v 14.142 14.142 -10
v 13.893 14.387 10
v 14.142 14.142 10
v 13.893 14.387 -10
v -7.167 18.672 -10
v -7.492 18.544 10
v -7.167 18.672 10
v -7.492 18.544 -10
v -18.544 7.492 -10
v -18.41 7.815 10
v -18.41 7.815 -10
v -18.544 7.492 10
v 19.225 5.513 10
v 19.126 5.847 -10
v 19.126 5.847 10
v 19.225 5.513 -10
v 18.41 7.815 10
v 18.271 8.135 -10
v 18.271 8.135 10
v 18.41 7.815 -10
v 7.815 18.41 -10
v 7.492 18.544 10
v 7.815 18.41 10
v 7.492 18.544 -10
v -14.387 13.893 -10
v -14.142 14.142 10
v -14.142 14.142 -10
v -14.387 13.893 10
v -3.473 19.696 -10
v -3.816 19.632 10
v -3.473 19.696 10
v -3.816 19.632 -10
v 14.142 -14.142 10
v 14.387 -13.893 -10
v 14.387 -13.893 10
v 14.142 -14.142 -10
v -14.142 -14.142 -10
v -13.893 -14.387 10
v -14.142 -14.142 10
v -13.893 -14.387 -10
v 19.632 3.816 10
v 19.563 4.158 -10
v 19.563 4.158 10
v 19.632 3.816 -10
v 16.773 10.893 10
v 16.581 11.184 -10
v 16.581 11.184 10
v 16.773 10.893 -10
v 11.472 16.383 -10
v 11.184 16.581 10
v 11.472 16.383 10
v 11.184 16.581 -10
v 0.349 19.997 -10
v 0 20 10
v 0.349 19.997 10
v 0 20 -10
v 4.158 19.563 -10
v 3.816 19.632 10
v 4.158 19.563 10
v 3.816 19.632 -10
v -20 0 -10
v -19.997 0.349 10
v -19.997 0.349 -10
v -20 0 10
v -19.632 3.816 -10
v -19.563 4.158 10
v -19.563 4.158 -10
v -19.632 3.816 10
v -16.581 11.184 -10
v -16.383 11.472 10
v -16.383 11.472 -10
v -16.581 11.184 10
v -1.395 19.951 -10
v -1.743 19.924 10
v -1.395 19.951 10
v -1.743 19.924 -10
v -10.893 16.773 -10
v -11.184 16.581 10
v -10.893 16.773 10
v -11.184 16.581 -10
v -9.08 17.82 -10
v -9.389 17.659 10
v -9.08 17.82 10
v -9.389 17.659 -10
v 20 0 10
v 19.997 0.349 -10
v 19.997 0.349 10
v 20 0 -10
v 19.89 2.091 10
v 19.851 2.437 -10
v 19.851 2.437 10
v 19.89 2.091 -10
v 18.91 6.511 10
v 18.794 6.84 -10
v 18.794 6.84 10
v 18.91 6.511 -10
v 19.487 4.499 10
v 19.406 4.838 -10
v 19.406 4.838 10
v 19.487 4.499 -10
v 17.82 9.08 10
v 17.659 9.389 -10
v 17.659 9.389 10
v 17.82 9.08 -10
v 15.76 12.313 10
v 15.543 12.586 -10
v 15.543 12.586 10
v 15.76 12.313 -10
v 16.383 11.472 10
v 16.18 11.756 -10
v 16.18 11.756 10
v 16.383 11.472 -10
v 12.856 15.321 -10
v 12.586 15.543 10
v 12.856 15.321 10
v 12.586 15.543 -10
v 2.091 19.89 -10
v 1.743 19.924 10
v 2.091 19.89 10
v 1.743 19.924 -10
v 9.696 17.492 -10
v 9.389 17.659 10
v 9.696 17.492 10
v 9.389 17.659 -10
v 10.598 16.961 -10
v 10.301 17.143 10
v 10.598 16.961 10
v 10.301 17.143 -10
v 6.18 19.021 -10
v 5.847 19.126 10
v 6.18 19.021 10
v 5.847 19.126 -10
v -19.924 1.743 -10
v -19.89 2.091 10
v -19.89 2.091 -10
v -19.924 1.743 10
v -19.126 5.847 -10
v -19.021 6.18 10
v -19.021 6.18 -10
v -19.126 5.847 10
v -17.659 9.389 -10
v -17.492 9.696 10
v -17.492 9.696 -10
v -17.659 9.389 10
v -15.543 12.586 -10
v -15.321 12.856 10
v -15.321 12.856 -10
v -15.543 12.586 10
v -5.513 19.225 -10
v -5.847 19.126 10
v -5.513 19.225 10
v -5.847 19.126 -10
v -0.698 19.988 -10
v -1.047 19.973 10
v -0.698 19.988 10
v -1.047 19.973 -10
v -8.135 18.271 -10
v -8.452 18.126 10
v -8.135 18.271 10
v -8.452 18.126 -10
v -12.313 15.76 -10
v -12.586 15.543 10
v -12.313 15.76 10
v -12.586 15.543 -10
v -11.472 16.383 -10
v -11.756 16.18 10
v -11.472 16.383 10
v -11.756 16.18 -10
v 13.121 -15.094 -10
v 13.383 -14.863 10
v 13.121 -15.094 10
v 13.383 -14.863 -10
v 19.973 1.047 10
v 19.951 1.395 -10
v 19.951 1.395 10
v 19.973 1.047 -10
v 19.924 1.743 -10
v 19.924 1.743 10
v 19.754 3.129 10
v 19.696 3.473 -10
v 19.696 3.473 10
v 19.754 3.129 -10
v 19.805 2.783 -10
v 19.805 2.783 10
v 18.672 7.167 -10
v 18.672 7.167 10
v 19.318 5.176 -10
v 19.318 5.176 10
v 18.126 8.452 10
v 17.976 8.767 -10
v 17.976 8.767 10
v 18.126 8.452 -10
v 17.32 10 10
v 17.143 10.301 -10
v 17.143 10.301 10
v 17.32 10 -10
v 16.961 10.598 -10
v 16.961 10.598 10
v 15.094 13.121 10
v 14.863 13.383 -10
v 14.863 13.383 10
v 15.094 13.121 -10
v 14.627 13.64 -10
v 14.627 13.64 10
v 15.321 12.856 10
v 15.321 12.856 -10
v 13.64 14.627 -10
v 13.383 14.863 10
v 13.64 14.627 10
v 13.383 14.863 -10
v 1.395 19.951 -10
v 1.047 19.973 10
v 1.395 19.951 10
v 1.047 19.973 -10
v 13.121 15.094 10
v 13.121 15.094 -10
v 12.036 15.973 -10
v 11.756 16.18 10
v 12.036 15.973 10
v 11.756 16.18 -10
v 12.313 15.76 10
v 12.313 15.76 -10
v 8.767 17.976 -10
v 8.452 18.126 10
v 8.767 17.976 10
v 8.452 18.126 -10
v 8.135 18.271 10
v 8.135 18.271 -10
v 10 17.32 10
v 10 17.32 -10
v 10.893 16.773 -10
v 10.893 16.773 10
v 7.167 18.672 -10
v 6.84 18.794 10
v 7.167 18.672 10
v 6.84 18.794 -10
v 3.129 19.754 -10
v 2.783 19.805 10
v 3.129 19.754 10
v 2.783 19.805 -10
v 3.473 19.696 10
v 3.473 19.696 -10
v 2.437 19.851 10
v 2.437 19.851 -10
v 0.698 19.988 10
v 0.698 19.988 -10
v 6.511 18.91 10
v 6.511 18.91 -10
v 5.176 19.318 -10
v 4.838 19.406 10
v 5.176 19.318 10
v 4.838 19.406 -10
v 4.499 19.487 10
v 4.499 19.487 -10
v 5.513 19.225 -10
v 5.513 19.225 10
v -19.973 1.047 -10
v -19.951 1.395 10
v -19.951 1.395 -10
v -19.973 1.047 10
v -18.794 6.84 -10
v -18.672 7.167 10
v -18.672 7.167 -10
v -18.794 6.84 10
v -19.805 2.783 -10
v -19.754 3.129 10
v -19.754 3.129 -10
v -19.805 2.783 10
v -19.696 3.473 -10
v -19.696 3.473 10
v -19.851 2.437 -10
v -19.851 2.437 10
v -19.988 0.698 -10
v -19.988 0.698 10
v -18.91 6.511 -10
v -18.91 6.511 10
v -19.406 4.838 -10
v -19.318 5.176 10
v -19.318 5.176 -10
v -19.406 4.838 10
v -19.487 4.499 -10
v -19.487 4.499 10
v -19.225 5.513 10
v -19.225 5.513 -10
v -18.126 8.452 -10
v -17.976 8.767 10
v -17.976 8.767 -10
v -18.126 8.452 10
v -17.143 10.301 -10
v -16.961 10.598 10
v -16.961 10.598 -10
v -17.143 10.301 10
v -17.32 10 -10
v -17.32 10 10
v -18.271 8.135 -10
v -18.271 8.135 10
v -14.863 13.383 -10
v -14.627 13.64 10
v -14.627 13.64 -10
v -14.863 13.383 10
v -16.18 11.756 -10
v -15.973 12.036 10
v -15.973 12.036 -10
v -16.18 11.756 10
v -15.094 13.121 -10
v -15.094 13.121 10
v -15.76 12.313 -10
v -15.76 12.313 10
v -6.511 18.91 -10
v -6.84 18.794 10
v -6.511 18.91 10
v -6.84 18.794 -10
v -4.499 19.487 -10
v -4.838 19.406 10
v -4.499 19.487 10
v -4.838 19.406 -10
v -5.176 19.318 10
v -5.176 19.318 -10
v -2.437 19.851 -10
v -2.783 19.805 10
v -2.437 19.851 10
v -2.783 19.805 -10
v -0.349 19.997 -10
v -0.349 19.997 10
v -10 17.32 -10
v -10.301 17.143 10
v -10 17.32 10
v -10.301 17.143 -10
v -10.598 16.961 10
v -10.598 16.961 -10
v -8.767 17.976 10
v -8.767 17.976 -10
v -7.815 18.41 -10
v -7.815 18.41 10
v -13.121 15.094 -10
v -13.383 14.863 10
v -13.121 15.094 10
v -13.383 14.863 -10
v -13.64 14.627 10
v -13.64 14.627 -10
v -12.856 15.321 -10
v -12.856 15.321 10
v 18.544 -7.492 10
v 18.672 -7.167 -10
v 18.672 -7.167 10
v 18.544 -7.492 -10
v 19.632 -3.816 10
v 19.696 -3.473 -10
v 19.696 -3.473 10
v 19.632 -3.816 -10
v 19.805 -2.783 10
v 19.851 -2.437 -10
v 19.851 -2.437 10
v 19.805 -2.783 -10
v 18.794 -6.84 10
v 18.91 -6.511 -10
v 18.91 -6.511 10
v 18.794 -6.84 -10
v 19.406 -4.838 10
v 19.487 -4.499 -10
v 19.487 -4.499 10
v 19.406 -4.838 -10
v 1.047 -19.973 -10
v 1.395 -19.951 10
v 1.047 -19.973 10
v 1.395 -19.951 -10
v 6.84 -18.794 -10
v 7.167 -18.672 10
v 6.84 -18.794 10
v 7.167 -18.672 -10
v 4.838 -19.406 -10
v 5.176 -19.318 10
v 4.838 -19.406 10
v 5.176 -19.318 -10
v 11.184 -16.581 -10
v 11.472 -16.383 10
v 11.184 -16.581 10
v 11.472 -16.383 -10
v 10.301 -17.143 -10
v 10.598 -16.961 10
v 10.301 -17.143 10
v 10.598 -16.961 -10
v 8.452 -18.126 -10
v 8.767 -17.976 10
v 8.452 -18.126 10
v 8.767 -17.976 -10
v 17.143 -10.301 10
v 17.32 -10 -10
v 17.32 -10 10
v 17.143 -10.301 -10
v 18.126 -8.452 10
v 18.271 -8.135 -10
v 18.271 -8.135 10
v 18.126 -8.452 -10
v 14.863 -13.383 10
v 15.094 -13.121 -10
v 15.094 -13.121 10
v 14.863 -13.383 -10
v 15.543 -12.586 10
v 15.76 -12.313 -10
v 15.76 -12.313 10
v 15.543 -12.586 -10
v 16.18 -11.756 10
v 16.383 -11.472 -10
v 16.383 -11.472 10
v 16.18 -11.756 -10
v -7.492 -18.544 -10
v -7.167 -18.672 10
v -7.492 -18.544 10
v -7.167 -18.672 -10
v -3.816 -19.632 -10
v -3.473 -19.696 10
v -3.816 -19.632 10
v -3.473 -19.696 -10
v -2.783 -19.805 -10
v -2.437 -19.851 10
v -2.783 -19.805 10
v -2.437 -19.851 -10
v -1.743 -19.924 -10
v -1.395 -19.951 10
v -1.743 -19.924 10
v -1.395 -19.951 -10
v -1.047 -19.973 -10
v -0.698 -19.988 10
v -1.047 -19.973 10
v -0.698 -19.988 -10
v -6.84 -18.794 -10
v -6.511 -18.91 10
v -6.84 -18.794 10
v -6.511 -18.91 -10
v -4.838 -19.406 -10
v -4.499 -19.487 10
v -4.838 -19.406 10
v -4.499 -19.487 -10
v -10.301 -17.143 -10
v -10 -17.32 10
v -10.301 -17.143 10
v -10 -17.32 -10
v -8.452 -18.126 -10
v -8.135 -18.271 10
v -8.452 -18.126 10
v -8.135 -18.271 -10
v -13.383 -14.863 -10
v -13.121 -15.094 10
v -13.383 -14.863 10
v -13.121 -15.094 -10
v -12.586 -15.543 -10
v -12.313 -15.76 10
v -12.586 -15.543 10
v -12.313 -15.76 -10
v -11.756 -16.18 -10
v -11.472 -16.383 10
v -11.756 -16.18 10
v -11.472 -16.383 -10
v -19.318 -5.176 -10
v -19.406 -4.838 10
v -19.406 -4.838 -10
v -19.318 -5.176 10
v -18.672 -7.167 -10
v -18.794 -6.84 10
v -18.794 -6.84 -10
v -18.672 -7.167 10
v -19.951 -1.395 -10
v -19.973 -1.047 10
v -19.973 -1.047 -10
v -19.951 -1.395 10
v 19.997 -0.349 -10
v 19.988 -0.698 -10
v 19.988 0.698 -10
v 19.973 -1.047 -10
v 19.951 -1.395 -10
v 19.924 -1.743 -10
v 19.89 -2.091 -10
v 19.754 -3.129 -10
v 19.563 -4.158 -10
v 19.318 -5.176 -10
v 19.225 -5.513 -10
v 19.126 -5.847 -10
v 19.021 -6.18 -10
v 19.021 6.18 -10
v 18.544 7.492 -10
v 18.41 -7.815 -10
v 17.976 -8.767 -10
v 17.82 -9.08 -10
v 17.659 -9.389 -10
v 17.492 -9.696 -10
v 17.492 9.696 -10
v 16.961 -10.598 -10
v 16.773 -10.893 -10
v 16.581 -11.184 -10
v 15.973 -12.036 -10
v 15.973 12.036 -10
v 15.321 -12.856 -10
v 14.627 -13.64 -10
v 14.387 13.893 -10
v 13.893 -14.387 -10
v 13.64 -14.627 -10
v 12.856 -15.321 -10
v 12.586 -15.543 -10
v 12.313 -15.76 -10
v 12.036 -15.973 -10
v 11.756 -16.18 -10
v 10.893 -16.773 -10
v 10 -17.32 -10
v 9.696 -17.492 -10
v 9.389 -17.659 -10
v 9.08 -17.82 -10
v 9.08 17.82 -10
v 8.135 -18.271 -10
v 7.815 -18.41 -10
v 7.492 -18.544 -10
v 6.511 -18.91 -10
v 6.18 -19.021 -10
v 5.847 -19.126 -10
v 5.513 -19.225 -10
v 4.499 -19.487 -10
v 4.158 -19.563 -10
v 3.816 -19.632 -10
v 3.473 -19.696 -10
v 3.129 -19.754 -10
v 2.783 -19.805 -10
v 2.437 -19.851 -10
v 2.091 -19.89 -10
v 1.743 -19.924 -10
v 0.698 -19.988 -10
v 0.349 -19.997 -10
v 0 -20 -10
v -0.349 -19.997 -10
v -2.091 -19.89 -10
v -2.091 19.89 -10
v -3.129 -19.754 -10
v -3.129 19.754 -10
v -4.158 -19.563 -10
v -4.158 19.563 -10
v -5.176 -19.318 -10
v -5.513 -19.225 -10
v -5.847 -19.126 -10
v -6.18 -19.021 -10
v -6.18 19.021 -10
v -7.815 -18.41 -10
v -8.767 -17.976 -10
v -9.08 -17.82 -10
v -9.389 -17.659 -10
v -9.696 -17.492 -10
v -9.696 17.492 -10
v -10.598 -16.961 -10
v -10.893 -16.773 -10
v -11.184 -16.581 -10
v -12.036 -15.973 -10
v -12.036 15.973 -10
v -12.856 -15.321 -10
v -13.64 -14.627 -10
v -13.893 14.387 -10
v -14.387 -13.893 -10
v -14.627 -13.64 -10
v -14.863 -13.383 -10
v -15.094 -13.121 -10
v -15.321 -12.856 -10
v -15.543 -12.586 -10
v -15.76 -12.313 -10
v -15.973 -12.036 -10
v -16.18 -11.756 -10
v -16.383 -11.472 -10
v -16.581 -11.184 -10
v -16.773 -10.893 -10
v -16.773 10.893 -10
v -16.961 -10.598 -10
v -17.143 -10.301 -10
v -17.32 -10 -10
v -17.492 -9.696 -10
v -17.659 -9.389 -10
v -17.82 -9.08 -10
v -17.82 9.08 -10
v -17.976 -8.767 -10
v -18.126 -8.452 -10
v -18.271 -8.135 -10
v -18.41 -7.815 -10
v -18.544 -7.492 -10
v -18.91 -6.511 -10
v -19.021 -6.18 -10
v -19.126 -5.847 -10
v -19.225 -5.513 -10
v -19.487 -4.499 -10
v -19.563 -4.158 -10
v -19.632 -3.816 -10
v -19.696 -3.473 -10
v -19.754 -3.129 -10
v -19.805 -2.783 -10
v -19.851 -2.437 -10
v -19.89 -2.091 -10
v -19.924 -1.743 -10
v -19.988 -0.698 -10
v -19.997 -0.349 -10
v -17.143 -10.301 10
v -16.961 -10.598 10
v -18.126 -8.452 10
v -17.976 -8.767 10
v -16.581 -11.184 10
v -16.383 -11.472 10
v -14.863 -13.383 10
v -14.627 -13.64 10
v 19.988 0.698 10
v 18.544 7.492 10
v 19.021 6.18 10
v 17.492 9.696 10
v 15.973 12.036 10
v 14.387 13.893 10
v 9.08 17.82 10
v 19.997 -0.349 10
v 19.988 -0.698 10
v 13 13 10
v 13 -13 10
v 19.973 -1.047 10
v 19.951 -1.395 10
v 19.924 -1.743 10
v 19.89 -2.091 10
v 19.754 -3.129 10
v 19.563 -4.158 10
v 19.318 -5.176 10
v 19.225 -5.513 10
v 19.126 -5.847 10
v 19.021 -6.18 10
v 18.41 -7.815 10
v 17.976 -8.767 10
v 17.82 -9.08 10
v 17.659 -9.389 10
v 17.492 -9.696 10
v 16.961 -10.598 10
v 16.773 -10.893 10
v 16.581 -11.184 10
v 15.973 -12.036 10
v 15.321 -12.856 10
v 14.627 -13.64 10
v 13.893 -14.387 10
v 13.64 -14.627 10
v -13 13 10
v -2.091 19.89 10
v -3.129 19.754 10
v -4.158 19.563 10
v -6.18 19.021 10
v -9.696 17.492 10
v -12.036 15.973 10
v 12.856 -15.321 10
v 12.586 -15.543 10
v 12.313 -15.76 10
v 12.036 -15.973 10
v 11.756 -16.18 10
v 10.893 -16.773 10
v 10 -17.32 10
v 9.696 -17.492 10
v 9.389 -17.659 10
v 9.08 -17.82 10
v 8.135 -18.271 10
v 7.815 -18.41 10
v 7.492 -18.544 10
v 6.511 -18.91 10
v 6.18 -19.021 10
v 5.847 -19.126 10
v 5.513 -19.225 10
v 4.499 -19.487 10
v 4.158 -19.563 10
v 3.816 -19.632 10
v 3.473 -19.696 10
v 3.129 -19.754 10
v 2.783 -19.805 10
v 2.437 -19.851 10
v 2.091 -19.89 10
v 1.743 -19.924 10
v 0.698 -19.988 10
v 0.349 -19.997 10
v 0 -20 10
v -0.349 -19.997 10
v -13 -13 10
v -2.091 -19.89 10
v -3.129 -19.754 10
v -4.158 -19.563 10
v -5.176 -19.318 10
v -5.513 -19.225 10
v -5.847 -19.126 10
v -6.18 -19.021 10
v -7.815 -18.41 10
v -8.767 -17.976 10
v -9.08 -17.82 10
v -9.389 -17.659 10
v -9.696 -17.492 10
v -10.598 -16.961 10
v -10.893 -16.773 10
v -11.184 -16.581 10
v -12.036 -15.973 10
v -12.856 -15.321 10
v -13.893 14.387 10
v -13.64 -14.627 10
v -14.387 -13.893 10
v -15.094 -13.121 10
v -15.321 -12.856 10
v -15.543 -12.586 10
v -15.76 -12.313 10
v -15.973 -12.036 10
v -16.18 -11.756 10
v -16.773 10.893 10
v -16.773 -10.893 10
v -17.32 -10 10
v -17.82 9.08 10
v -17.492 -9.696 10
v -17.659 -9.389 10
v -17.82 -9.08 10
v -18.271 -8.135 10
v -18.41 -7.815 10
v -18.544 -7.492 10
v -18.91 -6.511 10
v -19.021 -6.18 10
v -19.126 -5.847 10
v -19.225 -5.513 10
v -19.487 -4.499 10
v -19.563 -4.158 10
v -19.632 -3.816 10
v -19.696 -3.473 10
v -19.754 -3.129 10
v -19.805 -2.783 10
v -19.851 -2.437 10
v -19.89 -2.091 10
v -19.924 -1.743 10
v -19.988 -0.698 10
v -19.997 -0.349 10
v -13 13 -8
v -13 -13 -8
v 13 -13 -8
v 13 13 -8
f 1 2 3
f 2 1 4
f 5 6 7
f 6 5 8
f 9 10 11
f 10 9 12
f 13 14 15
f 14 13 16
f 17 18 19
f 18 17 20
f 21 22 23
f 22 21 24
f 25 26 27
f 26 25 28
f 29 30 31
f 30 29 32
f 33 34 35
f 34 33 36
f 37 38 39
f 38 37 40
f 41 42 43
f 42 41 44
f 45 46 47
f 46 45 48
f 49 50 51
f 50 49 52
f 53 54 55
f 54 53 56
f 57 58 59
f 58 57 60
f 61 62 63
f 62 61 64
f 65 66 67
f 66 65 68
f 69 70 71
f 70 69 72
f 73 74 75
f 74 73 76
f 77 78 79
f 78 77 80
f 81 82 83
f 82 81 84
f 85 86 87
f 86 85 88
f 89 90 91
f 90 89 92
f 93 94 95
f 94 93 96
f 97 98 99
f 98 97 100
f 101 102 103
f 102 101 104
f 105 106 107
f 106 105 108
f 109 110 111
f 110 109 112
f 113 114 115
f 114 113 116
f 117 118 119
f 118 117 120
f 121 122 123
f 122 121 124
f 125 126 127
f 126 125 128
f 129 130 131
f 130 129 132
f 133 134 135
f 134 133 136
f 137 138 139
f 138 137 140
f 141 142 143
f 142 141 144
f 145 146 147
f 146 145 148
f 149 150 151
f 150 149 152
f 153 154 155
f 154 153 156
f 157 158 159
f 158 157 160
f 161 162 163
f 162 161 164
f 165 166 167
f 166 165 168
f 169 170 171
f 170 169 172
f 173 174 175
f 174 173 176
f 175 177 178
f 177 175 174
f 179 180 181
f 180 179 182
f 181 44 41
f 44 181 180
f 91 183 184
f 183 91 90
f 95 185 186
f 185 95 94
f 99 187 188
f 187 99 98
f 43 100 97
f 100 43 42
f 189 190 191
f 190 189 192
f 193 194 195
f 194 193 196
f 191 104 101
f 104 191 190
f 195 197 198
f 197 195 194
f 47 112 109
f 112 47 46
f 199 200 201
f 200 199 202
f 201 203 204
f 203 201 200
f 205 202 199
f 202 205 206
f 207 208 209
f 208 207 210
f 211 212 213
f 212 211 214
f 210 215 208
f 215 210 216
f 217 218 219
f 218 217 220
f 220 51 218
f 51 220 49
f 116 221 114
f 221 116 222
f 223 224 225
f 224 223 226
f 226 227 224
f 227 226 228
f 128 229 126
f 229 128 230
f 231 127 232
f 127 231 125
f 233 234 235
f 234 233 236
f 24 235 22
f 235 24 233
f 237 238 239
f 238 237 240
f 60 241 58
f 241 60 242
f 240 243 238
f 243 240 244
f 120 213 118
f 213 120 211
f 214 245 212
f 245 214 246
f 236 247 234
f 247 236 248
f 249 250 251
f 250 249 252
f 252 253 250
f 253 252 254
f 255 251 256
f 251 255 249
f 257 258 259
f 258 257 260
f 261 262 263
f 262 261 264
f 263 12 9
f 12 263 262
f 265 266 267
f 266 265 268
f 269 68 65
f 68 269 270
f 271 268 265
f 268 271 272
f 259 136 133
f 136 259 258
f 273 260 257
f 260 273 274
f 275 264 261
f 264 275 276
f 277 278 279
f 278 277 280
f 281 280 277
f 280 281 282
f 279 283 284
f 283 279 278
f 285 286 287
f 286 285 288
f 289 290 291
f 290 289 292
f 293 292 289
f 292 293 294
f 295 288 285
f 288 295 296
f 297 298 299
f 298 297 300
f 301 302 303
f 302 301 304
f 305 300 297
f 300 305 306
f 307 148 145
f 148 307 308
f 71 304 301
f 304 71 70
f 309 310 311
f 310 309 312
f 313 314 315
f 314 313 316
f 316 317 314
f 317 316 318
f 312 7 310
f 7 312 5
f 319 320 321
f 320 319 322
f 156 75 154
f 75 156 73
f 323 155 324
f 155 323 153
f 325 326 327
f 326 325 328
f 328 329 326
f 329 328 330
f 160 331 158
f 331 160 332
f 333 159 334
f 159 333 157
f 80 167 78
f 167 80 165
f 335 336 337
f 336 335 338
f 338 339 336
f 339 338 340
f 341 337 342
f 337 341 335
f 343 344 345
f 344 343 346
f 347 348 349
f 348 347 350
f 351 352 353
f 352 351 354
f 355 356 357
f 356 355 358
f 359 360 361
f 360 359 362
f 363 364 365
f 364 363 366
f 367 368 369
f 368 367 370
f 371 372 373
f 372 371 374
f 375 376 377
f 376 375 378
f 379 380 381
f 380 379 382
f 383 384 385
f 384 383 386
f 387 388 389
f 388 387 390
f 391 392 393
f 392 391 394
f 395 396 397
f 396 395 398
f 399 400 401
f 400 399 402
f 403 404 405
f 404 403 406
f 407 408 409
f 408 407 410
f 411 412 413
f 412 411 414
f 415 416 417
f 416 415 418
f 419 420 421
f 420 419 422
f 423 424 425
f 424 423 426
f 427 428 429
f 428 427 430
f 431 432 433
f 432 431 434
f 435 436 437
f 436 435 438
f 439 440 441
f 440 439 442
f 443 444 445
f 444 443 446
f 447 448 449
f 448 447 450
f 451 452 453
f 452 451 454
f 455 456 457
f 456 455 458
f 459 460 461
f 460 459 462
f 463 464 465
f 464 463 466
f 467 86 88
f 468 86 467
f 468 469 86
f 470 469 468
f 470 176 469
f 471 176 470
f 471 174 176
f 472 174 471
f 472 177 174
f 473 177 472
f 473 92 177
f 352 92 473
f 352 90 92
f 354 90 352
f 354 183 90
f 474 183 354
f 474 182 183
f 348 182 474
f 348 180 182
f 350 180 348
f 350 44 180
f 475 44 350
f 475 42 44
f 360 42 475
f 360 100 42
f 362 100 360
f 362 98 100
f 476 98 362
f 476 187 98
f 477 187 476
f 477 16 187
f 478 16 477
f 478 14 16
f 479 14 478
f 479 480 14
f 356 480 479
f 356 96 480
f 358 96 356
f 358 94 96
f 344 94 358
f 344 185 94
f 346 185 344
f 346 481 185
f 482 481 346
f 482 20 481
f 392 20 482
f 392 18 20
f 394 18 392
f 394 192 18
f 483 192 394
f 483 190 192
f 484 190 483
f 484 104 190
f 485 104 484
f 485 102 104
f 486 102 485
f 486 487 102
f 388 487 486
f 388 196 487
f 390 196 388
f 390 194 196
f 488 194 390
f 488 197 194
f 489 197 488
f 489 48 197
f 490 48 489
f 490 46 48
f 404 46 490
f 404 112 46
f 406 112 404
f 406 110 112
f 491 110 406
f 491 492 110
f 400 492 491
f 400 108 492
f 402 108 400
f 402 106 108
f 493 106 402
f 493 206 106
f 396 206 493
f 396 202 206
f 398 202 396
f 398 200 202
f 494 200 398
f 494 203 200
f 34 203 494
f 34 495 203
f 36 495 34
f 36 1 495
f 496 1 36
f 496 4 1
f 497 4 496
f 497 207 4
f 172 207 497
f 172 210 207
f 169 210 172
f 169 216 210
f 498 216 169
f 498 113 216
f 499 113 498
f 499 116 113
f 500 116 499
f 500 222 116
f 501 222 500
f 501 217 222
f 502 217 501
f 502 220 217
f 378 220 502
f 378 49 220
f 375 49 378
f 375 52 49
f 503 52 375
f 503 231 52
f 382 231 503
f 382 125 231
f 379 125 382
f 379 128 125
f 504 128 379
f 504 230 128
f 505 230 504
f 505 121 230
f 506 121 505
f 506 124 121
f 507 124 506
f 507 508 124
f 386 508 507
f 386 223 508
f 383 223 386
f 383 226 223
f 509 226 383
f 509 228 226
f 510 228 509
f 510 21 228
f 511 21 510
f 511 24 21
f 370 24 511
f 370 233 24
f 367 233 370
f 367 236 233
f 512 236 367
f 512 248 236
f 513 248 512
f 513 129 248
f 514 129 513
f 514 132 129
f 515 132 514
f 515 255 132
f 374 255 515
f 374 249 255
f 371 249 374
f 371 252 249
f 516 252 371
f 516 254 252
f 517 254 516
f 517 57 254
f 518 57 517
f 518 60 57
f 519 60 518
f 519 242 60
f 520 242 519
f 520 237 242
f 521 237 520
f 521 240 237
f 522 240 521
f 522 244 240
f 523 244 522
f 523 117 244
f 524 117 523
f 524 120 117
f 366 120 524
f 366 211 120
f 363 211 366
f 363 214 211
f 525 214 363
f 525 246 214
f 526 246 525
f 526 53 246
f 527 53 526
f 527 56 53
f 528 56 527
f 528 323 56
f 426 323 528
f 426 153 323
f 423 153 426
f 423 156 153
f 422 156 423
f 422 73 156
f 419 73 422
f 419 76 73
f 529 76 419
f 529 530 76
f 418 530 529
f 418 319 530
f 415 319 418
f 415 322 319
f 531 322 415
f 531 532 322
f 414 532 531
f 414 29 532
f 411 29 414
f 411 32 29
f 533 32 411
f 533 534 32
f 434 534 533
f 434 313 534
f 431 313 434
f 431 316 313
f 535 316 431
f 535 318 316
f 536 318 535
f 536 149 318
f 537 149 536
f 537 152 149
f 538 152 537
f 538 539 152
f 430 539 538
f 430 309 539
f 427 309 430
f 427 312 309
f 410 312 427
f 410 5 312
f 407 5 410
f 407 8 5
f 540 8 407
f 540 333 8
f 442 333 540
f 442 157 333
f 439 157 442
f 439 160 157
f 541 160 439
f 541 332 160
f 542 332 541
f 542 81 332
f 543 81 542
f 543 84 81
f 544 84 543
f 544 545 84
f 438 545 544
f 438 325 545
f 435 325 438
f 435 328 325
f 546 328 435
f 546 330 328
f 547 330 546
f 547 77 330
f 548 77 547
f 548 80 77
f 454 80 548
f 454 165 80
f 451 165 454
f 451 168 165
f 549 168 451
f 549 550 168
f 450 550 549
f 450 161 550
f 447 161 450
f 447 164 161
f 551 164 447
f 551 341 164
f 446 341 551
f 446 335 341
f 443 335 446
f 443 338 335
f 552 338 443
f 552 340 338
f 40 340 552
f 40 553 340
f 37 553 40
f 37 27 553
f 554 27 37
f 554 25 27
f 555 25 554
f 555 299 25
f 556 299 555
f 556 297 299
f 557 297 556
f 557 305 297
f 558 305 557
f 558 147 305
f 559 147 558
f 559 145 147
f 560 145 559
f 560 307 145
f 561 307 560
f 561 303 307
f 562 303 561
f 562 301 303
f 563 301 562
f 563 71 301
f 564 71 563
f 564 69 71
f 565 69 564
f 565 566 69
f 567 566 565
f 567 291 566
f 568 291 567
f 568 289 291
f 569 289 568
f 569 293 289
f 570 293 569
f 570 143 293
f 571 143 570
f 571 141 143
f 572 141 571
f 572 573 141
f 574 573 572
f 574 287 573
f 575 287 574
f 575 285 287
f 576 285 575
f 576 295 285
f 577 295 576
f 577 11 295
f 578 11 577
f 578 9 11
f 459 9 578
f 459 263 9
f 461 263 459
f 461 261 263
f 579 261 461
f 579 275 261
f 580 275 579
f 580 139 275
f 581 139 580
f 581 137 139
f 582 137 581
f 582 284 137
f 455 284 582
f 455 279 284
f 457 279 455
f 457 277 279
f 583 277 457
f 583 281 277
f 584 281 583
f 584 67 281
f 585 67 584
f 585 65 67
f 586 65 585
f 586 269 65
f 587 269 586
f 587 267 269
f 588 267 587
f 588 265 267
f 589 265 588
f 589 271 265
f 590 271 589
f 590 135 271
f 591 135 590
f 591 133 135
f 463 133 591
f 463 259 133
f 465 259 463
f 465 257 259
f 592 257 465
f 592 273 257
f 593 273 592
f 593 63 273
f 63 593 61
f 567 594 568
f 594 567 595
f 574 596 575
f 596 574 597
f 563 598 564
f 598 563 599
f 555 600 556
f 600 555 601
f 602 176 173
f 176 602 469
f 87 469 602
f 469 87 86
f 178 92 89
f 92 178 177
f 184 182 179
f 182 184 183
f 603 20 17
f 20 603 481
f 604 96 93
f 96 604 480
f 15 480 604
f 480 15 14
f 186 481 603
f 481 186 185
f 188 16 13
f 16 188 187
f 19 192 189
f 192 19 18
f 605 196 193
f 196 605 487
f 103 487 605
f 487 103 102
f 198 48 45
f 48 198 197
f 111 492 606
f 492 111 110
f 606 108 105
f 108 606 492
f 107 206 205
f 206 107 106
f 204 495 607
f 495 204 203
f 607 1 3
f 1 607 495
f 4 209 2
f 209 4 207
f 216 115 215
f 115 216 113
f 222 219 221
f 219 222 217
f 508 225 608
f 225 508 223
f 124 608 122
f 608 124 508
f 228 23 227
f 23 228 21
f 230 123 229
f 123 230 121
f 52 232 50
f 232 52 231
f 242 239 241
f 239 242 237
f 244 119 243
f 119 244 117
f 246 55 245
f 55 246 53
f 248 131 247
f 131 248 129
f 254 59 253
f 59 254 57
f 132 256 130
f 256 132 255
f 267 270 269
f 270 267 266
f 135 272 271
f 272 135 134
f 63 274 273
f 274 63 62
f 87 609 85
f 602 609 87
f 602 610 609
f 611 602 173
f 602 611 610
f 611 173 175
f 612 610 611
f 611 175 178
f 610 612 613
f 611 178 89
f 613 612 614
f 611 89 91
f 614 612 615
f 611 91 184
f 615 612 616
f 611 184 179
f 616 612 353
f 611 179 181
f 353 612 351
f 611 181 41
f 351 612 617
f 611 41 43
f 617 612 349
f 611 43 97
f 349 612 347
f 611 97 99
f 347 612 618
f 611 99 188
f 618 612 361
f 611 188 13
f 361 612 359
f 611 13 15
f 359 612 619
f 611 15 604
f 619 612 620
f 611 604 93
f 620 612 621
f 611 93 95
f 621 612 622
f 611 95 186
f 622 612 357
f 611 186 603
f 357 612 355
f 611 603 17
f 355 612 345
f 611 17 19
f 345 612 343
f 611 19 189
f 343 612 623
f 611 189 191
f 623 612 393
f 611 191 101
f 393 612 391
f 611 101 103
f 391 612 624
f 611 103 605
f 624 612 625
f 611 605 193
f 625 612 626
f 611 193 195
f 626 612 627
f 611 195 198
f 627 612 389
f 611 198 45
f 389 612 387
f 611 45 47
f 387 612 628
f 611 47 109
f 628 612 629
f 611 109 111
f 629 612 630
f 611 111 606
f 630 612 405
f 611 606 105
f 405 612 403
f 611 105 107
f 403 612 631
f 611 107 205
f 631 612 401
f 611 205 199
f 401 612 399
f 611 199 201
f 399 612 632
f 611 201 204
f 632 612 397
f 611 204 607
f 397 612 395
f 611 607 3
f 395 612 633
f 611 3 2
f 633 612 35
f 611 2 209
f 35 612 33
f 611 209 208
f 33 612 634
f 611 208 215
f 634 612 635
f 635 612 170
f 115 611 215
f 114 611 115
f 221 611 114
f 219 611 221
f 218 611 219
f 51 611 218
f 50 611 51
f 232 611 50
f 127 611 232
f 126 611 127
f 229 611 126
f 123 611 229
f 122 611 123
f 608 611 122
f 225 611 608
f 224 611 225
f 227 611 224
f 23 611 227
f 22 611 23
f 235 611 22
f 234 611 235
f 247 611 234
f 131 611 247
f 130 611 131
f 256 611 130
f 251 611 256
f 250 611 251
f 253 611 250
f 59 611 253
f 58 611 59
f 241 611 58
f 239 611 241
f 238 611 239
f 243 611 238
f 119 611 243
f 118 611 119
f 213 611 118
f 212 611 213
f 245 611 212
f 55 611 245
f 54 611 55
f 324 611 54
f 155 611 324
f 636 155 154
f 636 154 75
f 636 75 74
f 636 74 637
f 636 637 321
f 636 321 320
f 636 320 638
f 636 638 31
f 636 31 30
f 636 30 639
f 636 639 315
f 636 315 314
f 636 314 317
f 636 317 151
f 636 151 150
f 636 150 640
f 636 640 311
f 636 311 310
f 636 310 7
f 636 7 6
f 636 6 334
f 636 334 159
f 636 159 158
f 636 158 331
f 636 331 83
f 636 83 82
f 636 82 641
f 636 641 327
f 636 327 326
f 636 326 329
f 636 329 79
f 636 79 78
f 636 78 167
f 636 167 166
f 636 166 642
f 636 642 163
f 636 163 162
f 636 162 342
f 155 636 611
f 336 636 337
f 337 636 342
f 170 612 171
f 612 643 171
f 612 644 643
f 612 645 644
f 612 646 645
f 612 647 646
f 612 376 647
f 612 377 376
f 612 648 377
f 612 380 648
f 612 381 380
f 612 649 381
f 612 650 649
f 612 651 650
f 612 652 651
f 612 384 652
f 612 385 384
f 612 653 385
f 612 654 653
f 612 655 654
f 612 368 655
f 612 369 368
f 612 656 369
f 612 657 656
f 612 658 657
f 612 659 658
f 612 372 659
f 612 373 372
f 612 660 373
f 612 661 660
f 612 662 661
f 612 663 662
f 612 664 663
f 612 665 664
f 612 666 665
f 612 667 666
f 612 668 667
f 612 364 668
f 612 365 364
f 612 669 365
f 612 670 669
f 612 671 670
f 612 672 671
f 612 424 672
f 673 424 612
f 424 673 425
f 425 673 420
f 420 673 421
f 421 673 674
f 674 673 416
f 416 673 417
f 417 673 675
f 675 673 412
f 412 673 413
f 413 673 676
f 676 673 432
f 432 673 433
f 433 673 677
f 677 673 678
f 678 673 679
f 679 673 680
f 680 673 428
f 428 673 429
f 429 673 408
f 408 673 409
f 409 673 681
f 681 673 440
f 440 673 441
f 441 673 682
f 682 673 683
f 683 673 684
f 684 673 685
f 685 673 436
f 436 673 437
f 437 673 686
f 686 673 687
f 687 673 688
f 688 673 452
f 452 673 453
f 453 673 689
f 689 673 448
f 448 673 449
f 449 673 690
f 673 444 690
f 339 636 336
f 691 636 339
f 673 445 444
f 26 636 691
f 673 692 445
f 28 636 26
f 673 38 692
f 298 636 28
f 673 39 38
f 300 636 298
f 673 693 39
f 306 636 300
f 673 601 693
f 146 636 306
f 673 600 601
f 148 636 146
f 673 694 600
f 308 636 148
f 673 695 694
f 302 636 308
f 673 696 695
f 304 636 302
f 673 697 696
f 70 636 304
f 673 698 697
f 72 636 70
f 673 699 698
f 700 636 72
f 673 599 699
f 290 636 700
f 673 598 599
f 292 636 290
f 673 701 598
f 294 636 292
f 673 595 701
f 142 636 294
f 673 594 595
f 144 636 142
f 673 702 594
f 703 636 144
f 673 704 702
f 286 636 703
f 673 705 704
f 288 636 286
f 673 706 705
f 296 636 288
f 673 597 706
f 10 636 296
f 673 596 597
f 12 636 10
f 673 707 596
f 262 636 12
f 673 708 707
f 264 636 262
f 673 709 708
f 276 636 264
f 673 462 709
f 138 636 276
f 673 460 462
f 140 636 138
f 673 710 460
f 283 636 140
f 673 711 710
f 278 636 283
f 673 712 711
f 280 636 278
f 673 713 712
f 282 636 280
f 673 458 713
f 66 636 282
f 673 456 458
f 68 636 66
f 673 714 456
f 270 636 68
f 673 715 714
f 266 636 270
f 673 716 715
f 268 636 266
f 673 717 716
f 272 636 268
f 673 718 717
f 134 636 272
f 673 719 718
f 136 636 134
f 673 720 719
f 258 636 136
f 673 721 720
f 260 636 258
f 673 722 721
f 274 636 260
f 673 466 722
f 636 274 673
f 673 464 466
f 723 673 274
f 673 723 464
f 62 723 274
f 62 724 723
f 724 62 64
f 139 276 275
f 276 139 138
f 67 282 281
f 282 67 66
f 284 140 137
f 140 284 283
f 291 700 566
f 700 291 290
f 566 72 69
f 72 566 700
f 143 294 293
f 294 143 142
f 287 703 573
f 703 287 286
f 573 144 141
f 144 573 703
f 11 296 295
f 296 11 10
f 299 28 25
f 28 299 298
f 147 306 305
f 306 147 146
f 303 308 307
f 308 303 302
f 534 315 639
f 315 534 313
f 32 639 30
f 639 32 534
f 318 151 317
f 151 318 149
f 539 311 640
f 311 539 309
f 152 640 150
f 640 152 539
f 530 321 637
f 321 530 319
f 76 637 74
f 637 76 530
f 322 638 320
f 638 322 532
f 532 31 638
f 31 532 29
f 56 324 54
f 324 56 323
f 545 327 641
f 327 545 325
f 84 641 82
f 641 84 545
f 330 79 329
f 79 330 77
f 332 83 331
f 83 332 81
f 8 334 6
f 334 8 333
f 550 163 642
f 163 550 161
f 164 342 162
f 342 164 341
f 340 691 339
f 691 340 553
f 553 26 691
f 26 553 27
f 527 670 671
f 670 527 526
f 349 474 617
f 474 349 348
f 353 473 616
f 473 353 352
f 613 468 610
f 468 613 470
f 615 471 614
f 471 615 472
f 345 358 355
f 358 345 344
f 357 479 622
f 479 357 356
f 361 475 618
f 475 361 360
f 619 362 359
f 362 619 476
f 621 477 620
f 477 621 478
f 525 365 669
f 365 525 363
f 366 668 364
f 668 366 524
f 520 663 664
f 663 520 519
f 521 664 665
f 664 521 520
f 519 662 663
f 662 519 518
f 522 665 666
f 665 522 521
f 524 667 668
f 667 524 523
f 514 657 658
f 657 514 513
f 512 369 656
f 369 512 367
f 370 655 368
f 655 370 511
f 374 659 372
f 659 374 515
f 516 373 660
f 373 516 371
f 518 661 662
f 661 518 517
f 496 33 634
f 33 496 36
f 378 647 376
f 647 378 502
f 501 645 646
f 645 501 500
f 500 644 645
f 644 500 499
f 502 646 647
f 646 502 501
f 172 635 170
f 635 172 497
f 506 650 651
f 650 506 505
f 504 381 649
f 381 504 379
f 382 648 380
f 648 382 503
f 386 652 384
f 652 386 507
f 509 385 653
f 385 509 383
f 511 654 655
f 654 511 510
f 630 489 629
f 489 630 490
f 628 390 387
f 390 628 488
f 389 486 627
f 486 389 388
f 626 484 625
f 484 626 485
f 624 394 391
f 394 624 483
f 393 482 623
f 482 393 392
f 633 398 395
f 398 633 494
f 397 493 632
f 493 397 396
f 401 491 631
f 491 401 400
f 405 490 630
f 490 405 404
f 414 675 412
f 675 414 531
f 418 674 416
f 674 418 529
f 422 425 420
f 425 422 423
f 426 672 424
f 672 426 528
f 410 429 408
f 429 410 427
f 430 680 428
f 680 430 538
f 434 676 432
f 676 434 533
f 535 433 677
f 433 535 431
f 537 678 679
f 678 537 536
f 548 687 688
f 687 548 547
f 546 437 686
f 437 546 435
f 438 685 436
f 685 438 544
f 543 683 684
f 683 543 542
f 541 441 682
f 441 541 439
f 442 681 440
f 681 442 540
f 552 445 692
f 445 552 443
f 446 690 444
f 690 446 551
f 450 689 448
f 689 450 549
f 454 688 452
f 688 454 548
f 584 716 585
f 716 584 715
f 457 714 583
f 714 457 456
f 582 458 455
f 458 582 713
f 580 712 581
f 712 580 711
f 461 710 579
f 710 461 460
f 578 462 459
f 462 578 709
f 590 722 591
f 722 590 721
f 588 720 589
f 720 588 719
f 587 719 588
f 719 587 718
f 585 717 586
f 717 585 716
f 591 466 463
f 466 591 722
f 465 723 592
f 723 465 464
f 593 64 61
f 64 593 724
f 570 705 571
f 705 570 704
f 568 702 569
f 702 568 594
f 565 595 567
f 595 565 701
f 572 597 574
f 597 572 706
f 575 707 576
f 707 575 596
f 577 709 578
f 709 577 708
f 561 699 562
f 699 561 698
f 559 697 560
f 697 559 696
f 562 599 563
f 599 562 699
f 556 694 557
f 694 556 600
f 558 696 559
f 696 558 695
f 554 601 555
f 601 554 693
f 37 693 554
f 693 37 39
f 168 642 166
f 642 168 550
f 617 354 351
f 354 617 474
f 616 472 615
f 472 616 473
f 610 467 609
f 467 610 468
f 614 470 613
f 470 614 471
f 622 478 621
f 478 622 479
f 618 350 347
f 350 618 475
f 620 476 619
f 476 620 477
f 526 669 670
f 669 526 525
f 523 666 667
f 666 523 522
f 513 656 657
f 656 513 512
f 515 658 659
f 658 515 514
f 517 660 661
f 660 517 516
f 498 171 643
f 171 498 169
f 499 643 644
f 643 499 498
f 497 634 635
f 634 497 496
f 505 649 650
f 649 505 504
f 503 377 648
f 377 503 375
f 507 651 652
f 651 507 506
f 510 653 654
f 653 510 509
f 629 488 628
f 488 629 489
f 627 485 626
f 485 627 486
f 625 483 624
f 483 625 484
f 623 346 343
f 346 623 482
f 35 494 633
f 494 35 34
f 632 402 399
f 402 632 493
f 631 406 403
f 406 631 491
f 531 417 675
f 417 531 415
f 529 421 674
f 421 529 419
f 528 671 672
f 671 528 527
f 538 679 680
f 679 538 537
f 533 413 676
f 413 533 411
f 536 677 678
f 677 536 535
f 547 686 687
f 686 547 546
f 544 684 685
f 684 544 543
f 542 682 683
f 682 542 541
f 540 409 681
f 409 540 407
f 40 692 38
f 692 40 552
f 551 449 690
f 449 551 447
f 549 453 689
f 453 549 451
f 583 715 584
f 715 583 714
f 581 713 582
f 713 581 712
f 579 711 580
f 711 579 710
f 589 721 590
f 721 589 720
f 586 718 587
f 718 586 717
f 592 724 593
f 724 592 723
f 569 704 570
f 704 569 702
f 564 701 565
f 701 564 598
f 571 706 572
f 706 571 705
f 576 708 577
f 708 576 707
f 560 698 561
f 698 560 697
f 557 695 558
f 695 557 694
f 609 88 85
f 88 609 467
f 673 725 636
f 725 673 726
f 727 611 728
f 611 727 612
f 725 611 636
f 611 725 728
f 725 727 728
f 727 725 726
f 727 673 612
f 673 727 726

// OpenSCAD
$fa = 1;
$fs = 0.1;

difference() {
  cylinder(h = 20, r1 = 20, r2 = 20, center = true);

  translate([0, 0, 12])
    cube([26, 26, 40], center = true);
};
